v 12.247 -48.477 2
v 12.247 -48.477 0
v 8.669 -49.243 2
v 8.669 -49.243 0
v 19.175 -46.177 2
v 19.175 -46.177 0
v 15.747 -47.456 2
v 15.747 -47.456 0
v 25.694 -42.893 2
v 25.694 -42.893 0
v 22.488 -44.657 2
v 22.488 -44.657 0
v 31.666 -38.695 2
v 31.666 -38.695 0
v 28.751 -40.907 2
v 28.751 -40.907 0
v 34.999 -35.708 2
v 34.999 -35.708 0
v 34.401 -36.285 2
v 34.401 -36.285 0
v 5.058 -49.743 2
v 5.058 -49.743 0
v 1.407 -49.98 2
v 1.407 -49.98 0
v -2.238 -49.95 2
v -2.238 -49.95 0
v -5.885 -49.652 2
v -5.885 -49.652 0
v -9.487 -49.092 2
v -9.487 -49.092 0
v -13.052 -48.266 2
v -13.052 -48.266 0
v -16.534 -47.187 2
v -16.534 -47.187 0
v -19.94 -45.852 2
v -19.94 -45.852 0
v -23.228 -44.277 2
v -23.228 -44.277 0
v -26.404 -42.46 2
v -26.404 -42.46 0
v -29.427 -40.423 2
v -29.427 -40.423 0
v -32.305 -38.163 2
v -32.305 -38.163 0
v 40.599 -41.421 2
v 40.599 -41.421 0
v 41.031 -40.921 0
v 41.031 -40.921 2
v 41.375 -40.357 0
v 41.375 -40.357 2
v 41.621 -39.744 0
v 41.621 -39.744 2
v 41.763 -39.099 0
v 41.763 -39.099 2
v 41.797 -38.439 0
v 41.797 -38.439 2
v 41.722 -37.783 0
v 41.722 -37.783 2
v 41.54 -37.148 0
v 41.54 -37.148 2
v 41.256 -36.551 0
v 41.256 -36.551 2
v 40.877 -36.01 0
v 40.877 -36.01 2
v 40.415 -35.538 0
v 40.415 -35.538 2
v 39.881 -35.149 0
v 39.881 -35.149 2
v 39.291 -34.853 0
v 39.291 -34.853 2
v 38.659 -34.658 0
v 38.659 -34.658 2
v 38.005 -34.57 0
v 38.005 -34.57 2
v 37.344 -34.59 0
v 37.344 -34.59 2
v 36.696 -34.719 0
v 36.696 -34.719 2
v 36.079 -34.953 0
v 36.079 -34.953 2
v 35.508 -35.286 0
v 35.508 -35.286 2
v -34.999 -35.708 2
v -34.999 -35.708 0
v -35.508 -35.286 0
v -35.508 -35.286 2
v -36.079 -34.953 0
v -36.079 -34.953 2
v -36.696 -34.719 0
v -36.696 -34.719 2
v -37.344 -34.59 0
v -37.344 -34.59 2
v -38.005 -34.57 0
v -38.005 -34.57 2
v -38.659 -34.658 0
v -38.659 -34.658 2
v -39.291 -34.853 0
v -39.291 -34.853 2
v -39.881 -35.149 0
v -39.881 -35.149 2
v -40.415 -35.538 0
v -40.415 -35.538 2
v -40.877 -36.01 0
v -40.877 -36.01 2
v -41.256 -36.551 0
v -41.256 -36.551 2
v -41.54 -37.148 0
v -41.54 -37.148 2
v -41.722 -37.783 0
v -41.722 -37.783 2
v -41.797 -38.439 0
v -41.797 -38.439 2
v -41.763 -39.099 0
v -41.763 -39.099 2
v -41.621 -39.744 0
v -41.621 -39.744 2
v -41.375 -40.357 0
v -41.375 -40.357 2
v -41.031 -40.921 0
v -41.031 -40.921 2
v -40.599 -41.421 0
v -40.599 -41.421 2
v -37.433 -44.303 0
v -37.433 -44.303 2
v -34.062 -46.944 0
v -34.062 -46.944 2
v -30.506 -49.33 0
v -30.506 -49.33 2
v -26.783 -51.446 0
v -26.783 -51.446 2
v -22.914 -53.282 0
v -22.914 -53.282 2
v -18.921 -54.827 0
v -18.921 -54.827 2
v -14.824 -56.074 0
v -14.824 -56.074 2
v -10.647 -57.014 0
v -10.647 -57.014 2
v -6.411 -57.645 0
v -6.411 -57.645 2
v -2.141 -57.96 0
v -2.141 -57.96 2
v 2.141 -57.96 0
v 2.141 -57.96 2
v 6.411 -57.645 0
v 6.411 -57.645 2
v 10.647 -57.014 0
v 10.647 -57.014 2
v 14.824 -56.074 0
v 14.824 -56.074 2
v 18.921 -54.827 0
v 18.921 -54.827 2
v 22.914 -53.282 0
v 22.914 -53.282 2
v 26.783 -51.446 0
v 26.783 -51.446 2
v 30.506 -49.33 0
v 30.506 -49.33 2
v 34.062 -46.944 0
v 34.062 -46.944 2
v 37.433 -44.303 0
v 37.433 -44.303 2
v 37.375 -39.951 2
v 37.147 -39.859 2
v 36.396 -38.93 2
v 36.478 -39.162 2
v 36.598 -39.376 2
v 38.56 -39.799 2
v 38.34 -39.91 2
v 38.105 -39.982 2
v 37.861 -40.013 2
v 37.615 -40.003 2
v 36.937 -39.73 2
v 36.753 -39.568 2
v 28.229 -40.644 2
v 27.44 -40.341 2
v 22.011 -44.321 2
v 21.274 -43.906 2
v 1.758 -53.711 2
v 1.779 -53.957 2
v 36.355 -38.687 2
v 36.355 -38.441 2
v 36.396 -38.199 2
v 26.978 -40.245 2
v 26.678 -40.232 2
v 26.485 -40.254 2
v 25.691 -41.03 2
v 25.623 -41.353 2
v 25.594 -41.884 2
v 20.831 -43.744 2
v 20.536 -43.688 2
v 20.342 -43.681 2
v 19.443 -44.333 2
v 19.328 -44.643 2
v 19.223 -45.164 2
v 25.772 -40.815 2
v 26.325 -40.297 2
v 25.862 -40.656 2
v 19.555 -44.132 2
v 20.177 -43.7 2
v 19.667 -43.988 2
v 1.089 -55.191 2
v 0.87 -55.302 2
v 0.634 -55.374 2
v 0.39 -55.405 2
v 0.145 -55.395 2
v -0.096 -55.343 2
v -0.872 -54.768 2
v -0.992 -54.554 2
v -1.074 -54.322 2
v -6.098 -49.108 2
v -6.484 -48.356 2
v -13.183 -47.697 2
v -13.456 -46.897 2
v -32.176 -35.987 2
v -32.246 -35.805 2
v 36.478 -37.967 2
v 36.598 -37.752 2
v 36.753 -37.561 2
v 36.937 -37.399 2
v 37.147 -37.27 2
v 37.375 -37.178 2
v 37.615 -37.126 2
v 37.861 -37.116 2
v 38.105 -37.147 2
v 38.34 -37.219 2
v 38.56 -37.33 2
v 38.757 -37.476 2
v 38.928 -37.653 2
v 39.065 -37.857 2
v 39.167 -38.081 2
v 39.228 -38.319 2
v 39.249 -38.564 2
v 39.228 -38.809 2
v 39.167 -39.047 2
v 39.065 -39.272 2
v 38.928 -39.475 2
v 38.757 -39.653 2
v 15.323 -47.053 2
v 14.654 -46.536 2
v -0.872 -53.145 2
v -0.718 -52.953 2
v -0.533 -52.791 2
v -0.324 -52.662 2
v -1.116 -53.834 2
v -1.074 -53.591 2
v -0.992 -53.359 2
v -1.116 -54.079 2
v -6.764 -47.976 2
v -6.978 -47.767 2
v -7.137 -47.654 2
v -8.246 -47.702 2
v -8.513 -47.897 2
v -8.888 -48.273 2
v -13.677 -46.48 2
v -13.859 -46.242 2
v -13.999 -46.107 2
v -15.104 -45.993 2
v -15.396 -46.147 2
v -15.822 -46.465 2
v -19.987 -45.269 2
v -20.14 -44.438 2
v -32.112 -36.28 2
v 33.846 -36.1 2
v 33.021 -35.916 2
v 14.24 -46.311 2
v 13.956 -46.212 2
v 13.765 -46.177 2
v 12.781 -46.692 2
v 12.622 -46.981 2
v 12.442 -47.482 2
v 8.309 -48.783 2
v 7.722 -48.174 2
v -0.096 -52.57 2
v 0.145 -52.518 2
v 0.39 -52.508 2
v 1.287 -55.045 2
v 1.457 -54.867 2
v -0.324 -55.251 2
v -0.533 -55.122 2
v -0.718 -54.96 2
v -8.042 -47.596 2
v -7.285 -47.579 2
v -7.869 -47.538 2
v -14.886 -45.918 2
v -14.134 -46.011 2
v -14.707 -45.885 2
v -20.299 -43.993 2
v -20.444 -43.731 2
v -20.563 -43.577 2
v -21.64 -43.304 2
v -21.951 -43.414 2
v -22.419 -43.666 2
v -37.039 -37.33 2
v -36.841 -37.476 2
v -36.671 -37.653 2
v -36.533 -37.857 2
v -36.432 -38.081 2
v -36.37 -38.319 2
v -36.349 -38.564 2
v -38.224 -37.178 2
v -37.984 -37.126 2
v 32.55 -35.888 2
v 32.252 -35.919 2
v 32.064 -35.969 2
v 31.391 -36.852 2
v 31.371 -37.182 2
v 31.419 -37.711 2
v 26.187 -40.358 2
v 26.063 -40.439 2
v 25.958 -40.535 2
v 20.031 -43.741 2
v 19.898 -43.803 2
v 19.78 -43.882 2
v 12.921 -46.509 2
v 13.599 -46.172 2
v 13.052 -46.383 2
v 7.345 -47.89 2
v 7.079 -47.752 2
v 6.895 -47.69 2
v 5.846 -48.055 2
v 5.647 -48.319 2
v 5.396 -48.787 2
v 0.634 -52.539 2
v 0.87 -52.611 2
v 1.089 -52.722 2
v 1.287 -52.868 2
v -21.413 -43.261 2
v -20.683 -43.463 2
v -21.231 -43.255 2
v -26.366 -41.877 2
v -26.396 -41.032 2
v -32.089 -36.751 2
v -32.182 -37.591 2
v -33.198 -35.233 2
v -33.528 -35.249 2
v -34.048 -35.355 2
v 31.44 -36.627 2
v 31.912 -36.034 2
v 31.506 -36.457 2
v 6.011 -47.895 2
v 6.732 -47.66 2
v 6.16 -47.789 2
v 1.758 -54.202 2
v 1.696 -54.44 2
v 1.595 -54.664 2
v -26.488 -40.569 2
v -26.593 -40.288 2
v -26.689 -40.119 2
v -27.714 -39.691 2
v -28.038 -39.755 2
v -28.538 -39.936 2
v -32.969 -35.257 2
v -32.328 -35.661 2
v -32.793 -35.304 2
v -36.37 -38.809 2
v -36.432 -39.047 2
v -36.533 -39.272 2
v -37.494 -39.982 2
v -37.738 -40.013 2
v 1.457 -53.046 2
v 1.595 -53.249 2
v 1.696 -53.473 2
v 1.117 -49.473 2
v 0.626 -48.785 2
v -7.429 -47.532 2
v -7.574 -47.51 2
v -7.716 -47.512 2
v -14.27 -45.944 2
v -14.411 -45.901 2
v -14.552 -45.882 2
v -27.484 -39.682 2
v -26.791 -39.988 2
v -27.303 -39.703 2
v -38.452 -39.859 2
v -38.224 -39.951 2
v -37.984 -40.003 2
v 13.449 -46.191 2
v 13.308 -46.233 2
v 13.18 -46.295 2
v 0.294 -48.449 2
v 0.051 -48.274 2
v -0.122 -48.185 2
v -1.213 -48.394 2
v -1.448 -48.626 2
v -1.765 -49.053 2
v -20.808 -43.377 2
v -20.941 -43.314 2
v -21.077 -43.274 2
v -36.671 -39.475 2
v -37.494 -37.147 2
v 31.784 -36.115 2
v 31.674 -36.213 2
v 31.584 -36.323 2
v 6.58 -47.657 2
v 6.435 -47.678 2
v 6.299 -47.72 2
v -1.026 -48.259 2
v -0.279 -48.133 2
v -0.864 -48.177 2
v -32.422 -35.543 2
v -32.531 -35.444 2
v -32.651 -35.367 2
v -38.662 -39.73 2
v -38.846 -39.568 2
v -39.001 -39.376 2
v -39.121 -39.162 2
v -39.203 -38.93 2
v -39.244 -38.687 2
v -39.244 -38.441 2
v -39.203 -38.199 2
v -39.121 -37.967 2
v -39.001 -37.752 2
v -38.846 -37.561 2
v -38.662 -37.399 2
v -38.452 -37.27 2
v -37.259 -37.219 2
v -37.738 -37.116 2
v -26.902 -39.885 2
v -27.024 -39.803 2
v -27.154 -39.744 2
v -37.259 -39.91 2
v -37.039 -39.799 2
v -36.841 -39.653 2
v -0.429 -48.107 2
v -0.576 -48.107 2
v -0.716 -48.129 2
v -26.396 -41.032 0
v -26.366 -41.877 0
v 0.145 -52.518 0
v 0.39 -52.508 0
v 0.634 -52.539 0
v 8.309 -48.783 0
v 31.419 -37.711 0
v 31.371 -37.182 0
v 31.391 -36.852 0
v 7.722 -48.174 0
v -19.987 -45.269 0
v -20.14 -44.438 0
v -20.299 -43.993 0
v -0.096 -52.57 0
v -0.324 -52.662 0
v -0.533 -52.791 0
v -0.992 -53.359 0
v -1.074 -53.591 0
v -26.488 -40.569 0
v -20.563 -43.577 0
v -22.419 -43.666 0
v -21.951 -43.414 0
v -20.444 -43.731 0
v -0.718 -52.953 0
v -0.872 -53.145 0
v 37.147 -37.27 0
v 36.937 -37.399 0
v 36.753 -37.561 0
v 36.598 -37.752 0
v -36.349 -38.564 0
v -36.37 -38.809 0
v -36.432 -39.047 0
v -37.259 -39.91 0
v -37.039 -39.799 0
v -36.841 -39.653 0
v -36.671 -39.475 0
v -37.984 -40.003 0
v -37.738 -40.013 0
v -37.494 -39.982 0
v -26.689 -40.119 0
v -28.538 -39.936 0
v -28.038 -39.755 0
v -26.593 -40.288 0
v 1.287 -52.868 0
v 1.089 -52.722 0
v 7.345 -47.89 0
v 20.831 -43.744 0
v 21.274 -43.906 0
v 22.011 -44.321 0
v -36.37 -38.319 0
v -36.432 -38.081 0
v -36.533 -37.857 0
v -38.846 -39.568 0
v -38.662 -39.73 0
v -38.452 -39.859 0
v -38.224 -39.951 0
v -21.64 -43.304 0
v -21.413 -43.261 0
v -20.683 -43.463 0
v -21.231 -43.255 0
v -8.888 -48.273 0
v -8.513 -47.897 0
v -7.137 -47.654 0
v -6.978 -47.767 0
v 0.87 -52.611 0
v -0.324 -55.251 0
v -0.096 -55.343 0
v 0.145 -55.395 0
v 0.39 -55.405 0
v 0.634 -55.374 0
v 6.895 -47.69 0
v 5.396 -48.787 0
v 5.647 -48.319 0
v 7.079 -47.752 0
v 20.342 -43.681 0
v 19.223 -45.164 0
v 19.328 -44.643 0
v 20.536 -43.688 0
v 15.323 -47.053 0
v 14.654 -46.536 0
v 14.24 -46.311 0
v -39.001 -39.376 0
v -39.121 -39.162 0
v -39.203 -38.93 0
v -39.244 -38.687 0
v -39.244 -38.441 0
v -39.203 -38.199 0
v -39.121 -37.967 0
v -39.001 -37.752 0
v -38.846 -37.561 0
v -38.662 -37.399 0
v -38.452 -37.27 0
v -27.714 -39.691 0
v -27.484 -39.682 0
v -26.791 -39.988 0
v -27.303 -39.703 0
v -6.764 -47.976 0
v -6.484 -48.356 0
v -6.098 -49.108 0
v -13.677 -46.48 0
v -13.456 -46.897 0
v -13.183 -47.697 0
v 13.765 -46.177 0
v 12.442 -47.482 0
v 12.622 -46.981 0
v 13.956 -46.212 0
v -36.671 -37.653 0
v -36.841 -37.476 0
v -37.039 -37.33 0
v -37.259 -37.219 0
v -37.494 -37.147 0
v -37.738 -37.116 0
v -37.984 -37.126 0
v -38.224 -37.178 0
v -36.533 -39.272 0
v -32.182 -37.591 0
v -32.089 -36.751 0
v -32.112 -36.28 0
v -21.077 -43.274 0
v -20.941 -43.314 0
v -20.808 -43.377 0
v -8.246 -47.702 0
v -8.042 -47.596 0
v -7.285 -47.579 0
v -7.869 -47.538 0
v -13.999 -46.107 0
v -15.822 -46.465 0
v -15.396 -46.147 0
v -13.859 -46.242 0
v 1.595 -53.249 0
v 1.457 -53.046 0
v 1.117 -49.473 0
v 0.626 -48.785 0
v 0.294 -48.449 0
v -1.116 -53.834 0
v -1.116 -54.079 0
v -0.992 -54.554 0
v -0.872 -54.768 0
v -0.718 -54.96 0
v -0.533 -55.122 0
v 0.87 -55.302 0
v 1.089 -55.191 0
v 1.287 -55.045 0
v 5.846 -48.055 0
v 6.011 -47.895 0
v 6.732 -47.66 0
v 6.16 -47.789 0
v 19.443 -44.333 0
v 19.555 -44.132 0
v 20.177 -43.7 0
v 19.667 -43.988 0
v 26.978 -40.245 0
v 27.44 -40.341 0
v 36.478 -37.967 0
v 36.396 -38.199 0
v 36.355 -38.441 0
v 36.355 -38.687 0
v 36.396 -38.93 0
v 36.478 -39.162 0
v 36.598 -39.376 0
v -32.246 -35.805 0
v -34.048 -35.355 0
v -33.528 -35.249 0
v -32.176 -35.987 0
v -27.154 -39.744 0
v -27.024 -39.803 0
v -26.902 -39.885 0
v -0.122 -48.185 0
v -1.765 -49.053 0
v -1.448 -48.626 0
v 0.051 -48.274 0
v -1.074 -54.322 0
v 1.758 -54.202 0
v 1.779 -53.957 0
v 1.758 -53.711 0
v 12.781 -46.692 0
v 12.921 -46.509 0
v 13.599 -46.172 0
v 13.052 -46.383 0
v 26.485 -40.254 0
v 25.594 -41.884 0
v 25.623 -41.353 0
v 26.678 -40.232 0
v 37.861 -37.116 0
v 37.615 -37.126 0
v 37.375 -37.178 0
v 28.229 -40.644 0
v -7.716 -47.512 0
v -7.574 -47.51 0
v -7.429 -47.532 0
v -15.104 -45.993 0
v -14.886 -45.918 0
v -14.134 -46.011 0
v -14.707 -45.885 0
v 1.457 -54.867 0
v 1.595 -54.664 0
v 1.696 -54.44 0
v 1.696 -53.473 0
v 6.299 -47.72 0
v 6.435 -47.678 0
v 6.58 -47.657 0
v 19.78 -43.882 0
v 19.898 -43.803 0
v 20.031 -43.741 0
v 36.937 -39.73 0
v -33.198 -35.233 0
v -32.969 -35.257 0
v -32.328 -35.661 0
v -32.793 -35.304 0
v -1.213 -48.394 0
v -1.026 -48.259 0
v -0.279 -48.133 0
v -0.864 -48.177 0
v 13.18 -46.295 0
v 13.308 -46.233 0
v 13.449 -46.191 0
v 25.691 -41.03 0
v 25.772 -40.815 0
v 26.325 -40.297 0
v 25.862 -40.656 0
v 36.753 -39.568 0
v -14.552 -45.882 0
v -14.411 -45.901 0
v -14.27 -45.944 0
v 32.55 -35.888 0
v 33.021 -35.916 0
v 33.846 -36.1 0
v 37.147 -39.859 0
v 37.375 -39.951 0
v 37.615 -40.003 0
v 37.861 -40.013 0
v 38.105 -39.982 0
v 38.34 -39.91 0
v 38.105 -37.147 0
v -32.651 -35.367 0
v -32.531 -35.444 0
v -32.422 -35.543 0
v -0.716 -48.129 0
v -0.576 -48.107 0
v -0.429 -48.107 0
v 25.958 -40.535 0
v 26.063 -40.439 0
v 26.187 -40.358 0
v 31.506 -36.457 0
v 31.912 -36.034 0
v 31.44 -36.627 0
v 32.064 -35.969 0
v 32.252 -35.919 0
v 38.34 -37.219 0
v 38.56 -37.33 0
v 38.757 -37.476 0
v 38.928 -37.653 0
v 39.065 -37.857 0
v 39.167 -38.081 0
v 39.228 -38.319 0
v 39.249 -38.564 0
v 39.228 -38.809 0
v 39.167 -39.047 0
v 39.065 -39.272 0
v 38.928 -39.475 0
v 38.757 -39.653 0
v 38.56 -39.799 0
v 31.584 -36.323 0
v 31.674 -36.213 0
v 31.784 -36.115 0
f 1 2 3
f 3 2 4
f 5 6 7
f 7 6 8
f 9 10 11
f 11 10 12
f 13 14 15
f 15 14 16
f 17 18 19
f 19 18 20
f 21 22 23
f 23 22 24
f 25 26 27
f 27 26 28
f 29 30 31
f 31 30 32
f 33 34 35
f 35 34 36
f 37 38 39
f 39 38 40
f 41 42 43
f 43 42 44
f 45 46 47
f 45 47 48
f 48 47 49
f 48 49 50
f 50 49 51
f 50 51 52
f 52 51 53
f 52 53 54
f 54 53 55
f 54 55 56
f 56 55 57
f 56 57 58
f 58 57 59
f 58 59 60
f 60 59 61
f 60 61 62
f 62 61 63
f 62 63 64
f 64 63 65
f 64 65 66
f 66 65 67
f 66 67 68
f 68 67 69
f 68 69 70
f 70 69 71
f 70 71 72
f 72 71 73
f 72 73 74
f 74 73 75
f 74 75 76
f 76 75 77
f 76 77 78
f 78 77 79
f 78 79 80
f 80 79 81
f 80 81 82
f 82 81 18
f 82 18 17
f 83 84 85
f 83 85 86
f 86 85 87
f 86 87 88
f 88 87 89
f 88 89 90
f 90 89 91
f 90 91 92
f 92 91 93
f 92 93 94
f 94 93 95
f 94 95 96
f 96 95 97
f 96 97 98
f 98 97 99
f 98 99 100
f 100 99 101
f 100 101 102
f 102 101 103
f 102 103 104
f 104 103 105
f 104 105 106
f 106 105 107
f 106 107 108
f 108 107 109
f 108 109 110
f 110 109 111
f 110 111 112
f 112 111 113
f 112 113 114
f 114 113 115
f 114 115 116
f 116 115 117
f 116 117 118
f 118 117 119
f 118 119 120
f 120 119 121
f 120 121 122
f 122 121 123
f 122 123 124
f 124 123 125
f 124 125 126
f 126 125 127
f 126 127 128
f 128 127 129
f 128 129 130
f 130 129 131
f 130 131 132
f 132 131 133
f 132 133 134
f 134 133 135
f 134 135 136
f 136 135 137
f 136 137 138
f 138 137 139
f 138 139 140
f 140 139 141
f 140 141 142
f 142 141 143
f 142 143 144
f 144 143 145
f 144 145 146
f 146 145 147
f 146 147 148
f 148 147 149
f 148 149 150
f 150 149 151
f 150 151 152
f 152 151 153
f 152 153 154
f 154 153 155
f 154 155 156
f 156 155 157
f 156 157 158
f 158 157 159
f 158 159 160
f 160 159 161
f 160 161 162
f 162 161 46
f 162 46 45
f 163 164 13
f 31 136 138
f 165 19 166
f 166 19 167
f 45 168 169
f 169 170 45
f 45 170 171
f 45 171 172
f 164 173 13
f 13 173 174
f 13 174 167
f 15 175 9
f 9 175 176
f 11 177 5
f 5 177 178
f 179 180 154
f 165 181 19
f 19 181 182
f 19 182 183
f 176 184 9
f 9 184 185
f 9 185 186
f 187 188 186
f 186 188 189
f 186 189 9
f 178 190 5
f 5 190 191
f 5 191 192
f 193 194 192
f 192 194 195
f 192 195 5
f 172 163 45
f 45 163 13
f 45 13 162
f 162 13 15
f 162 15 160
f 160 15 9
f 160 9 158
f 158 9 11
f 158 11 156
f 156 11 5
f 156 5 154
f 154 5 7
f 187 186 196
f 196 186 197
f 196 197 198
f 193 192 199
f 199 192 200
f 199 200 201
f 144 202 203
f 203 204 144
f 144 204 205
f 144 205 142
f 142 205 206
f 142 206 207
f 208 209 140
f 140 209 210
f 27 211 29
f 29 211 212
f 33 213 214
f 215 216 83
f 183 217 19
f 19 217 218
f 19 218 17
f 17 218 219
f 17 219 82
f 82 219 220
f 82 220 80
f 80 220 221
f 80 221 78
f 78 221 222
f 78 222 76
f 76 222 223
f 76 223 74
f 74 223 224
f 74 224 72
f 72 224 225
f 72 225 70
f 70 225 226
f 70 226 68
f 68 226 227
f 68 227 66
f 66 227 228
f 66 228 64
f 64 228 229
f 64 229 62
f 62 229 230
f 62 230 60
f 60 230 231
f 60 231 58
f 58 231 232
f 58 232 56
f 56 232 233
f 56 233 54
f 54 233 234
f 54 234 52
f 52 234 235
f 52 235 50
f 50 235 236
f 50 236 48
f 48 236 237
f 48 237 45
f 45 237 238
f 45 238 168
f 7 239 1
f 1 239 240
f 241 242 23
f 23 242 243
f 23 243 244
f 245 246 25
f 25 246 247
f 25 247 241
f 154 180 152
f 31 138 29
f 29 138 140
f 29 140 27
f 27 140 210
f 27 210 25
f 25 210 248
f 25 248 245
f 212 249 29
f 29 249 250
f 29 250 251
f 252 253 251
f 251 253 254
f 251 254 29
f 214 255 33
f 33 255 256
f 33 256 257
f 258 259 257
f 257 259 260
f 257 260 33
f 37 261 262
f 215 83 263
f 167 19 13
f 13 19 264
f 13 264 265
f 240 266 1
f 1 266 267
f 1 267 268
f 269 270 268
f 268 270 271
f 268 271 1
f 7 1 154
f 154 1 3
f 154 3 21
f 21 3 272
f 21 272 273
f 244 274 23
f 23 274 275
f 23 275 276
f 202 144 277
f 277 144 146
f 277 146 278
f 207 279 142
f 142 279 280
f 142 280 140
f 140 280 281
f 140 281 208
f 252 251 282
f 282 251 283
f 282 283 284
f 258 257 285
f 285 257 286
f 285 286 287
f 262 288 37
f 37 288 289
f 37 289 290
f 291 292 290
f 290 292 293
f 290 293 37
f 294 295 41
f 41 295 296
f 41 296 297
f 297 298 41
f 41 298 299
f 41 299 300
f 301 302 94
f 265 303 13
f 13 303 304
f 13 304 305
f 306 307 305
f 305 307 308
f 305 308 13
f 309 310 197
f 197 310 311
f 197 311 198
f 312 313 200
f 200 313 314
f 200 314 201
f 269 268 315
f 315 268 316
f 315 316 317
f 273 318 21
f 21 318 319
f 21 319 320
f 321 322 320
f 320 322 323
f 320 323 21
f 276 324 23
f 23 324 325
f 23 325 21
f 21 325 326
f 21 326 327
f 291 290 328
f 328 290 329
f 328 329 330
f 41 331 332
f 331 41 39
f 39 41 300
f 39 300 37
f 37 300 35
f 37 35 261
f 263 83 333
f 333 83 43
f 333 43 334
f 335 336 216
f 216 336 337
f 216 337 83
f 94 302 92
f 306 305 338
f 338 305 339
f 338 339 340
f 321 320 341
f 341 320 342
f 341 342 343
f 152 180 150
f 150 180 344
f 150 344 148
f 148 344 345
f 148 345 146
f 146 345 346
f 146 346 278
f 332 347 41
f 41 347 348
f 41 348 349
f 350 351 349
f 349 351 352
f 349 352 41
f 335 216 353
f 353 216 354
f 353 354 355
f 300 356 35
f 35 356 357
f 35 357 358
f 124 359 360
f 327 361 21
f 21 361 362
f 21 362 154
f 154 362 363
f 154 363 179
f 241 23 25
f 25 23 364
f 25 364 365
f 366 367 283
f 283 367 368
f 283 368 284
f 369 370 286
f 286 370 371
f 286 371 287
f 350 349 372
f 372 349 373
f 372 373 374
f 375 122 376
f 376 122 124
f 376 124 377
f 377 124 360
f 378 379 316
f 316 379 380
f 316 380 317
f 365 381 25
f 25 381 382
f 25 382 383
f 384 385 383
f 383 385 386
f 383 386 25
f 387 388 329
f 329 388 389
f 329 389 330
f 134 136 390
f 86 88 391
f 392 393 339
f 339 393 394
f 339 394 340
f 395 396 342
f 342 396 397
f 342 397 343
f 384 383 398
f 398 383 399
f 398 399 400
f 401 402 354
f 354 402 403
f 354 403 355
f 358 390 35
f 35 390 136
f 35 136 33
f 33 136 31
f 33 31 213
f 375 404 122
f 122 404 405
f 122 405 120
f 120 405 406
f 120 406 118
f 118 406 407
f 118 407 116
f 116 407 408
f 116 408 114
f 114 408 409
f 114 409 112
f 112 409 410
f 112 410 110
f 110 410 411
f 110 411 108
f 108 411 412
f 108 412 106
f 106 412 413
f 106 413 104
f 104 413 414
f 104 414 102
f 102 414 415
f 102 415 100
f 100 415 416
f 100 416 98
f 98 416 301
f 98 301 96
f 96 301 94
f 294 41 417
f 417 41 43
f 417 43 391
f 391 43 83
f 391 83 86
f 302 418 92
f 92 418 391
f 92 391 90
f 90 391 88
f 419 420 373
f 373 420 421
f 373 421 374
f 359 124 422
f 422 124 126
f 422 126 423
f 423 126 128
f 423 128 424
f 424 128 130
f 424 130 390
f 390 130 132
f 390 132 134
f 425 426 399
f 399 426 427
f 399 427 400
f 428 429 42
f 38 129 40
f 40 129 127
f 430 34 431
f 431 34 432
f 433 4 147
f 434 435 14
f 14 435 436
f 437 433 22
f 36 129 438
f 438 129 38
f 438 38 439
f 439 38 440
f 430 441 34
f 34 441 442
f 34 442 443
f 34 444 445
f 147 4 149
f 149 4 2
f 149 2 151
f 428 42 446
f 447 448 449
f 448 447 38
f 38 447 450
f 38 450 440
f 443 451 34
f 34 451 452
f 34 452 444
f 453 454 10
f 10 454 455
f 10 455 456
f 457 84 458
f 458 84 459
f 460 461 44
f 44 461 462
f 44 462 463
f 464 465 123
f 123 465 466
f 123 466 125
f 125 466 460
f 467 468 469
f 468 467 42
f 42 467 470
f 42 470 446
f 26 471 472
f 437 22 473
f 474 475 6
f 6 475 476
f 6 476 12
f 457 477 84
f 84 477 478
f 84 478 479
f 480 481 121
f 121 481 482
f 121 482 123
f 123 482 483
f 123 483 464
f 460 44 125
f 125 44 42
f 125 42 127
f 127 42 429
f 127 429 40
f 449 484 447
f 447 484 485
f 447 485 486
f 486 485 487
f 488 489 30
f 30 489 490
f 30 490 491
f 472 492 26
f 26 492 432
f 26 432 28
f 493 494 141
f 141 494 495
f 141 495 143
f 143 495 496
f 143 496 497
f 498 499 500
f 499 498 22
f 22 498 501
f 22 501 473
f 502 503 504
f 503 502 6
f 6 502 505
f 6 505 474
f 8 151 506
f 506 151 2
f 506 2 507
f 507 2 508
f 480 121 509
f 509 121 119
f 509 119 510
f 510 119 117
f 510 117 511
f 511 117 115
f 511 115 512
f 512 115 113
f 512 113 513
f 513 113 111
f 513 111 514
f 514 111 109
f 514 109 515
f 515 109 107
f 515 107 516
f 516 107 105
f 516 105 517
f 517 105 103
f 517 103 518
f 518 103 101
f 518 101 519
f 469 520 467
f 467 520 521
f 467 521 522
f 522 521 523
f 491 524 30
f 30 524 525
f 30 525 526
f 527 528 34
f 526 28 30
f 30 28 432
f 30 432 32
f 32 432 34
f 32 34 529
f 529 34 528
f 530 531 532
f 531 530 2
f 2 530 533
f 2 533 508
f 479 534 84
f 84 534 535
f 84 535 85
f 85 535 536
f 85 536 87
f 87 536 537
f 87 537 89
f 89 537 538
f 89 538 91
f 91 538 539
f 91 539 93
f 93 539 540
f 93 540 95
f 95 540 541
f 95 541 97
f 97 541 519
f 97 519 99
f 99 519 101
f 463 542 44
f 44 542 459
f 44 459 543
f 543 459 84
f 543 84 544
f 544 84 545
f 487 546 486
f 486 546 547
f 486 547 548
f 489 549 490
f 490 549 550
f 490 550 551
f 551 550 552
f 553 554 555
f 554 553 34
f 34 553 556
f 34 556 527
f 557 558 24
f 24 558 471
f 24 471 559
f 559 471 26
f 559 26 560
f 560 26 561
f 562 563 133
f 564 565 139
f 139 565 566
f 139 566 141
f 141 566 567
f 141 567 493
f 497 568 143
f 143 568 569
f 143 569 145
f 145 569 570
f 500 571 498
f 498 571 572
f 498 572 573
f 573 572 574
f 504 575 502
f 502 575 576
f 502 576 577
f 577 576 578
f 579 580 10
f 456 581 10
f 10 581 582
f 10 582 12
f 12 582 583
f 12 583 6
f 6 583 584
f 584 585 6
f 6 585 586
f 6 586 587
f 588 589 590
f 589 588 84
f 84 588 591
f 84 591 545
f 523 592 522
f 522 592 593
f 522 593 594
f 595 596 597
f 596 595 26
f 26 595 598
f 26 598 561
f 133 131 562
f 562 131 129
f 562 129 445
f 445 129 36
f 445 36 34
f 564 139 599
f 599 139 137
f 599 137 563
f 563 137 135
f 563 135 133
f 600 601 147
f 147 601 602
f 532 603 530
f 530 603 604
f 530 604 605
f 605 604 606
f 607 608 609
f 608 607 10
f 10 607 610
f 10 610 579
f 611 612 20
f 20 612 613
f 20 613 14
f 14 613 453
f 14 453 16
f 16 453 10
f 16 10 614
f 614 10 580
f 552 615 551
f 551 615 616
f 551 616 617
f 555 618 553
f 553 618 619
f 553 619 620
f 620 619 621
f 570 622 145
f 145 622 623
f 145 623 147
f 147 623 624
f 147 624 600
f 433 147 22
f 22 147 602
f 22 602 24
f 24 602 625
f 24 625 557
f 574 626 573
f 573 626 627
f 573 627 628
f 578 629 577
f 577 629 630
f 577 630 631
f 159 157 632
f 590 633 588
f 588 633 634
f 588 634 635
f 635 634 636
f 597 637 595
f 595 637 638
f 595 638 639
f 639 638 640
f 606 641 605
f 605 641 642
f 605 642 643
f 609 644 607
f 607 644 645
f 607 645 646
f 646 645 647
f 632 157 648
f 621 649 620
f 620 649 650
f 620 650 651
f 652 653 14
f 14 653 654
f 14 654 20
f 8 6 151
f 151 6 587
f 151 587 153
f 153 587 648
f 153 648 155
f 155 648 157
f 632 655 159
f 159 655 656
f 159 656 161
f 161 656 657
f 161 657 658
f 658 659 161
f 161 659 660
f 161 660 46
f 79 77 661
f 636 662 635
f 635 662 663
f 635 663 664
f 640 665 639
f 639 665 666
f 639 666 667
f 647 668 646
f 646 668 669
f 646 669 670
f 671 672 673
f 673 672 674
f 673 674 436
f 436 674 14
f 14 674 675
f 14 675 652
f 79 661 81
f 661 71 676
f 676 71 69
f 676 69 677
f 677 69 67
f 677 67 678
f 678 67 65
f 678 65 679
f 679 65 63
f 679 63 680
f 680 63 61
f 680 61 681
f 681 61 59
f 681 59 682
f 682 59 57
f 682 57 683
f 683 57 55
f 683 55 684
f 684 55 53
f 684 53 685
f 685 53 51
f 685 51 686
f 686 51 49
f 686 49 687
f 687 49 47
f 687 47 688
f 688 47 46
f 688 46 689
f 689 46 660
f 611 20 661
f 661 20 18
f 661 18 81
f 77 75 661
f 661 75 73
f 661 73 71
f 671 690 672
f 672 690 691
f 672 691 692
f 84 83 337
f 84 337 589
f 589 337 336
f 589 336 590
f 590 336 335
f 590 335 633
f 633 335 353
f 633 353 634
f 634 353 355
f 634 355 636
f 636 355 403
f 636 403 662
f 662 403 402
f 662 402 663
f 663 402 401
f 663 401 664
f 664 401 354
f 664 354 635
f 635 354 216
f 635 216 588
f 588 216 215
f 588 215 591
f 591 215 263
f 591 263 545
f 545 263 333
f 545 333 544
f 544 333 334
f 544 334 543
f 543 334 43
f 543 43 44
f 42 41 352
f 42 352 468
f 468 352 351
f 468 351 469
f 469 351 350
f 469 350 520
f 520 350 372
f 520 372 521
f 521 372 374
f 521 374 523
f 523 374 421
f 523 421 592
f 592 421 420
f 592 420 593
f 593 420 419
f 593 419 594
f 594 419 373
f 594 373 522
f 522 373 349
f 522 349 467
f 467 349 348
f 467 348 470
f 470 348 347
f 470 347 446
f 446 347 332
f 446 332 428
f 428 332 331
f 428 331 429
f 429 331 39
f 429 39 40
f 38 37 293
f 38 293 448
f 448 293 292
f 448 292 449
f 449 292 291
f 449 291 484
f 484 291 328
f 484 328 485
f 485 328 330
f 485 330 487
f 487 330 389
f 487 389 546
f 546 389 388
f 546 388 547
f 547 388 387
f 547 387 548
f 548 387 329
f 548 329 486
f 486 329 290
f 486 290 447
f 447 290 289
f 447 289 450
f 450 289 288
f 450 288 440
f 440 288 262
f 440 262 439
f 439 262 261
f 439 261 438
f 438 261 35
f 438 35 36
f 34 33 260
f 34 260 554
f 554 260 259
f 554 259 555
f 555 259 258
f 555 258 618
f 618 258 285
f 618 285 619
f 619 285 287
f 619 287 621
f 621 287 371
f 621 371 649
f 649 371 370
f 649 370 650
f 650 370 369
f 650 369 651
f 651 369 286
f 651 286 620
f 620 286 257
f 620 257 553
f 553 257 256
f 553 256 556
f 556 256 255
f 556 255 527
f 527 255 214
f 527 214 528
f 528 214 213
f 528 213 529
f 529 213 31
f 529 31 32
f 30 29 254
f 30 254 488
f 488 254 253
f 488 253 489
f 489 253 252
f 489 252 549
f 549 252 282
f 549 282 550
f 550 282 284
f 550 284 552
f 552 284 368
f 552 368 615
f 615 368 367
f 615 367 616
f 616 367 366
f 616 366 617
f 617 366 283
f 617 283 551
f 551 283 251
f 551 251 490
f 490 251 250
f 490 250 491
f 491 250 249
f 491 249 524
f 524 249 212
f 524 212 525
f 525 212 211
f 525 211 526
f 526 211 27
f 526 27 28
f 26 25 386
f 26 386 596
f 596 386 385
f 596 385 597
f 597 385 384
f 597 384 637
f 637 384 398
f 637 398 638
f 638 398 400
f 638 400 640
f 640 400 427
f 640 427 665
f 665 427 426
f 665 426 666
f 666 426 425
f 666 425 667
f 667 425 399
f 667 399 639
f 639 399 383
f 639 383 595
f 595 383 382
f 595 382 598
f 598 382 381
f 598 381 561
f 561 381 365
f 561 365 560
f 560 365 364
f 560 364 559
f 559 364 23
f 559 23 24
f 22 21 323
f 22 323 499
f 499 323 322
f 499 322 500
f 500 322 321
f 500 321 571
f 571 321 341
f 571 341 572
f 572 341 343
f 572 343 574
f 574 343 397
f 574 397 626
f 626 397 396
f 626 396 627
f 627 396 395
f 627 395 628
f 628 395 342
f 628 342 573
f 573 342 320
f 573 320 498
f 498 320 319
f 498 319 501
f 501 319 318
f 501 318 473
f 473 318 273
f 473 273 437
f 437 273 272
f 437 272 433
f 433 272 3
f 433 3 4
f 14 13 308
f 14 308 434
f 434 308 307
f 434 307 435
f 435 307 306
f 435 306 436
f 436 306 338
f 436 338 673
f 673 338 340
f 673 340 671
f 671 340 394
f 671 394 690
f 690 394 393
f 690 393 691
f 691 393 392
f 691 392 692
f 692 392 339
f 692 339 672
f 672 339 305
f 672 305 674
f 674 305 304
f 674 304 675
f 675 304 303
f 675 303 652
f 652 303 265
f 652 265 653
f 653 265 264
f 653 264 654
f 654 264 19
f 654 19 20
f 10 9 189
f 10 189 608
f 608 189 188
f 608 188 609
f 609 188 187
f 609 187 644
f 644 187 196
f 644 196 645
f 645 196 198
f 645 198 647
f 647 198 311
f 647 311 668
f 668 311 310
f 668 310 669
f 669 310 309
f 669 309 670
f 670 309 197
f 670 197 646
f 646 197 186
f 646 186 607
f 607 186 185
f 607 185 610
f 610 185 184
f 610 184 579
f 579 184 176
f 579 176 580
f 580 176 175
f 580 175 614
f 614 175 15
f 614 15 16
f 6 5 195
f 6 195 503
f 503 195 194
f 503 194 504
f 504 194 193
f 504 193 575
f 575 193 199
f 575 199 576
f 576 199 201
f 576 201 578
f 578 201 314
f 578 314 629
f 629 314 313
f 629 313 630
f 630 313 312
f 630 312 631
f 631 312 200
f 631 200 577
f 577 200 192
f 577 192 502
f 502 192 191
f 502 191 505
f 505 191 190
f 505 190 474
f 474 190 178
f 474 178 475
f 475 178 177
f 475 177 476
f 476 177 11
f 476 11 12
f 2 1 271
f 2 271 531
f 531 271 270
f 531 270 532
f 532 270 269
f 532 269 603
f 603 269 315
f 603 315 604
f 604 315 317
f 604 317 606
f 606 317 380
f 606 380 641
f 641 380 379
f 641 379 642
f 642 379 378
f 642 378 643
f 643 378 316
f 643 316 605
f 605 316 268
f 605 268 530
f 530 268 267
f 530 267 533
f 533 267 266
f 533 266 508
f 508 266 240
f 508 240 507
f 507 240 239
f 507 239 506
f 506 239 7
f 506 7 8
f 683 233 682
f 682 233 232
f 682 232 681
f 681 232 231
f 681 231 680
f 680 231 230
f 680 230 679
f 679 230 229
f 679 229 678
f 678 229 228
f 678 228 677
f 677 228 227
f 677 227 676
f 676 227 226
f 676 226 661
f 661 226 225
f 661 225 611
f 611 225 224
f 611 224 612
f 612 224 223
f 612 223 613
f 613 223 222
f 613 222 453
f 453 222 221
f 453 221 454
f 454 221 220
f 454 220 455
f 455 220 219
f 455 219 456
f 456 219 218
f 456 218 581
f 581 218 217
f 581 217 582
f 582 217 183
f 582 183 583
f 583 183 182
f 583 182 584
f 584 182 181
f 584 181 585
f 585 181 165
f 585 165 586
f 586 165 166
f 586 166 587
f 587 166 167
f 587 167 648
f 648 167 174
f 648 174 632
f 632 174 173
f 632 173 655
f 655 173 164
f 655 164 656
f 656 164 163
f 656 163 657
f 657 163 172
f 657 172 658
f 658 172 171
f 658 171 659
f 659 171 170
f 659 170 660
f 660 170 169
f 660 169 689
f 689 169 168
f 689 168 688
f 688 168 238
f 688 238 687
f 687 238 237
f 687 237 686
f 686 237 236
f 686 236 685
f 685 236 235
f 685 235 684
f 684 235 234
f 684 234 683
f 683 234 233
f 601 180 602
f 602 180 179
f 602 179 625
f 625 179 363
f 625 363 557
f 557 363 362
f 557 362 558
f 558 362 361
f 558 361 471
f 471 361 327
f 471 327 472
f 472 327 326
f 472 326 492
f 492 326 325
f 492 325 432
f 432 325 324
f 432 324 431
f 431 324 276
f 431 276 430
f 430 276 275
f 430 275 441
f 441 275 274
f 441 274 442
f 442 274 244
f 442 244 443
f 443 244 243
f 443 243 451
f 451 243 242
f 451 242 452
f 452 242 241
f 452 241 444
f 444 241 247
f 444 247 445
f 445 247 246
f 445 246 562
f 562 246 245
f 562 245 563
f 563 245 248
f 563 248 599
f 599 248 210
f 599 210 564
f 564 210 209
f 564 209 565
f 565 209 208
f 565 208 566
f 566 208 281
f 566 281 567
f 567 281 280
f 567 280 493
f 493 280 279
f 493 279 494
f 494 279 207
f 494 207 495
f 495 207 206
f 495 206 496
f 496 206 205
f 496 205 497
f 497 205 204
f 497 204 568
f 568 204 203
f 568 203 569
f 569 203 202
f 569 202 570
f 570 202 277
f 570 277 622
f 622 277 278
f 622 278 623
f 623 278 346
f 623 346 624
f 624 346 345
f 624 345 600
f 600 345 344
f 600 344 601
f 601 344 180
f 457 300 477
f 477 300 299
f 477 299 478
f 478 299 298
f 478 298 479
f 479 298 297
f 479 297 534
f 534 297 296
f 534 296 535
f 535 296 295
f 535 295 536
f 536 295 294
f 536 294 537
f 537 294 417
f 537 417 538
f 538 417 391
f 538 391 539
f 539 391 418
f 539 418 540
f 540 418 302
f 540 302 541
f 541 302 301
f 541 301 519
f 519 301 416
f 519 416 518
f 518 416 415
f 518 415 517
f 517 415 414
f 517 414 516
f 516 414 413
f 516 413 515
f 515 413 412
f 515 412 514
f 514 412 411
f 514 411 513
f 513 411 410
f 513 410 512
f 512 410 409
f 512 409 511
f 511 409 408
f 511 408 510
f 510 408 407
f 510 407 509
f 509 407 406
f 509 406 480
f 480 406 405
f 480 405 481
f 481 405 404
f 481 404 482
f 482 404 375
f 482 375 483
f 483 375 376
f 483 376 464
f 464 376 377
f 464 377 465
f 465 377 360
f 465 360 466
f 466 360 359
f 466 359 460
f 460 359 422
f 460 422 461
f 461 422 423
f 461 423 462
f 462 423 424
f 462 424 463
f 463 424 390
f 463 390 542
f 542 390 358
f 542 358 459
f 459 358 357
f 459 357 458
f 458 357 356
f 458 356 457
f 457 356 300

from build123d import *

# Parameters (mm, degrees)
EXTRUDE_1_DEPTH     = 2
EXTRUDE_START       = -2
EXTRUDE_6_DEPTH     = 2
SKETCH_3_R          = 1.45
CUT_EXTRUDE_1_DEPTH = 2


with BuildPart() as part:
    # 草图1 → 凸台-拉伸1 (new body)
    with BuildSketch(Plane.XY):
        with BuildLine():
            ThreePointArc((34.999399669, -35.707730574), (0, -50), (-34.999399669, -35.707730574))
            ThreePointArc((-34.999399669, -35.707730574), (-40.655970089, -35.764397047), (-40.599303617, -41.420967466))
            ThreePointArc((-40.599303617, -41.420967466), (0, -58), (40.599303617, -41.420967466))
            ThreePointArc((40.599303617, -41.420967466), (40.655970089, -35.764397047), (34.999399669, -35.707730574))
        make_face()
    extrude(amount=EXTRUDE_1_DEPTH)

    # 草图2 → 凸台-拉伸6 (add)
    with BuildSketch(Plane.XY.offset(2).offset(EXTRUDE_START)):
        with BuildLine():
            add(Edge.make_bspline(
                [(-34.999399669, -35.707730574), (-31.293036679, -34.051470167), (-32.304776642, -38.162827543)],
                knots=[0, 0, 0, 1, 1, 1], degree=2))
            ThreePointArc((-34.999399669, -35.707730574), (-33.674469744, -36.959844257), (-32.304776642, -38.162827543))
        make_face()
        with BuildLine():
            add(Edge.make_bspline(
                [(-29.427336681, -40.423159895), (-26.001624486, -38.244898865), (-26.403964274, -42.459753539)],
                knots=[0, 0, 0, 1, 1, 1], degree=2))
            ThreePointArc((-29.427336681, -40.423159895), (-27.934216832, -41.469018918), (-26.403964274, -42.459753539))
        make_face()
        with BuildLine():
            add(Edge.make_bspline(
                [(-23.228081101, -44.277039743), (-20.15603281, -41.623203943), (-19.940397248, -45.851723605)],
                knots=[0, 0, 0, 1, 1, 1], degree=2))
            ThreePointArc((-23.228081101, -44.277039743), (-21.598594585, -45.094353437), (-19.940397248, -45.851723605))
        make_face()
        with BuildLine():
            add(Edge.make_bspline(
                [(-16.5337593, -47.18723136), (-13.880850288, -44.114382693), (-13.051835275, -48.266443788)],
                knots=[0, 0, 0, 1, 1, 1], degree=2))
            ThreePointArc((-16.5337593, -47.18723136), (-14.802635794, -47.758580104), (-13.051835275, -48.266443788))
        make_face()
        with BuildLine():
            add(Edge.make_bspline(
                [(-9.487049125, -49.091709065), (-7.309821542, -45.665339966), (-5.885096092, -49.65244852)],
                knots=[0, 0, 0, 1, 1, 1], degree=2))
            ThreePointArc((-9.487049125, -49.091709065), (-7.69118452, -49.404915552), (-5.885096092, -49.65244852))
        make_face()
        with BuildLine():
            add(Edge.make_bspline(
                [(-2.238138968, -49.949882222), (-0.58299664, -46.243019798), (1.407073696, -49.980197515)],
                knots=[0, 0, 0, 1, 1, 1], degree=2))
            ThreePointArc((-2.238138968, -49.949882222), (-0.415809002, -49.998270999), (1.407073696, -49.980197515))
        make_face()
        with BuildLine():
            add(Edge.make_bspline(
                [(5.058473235, -49.743460359), (6.156253823, -45.835109949), (8.669254151, -49.242705373)],
                knots=[0, 0, 0, 1, 1, 1], degree=2))
            ThreePointArc((5.058473235, -49.743460359), (6.868428764, -49.526000104), (8.669254151, -49.242705373))
        make_face()
        with BuildLine():
            add(Edge.make_bspline(
                [(31.66559238, -38.694835046), (30.424637319, -34.829559417), (34.400675338, -36.284894051)],
                knots=[0, 0, 0, 1, 1, 1], degree=2))
            ThreePointArc((31.66559238, -38.694835046), (33.055103788, -37.514798594), (34.400675338, -36.284894051))
        make_face()
        with BuildLine():
            add(Edge.make_bspline(
                [(25.69413065, -42.893025659), (25.029188635, -38.888256343), (28.750957058, -40.906997791)],
                knots=[0, 0, 0, 1, 1, 1], degree=2))
            ThreePointArc((25.69413065, -42.893025659), (27.240649231, -41.927878905), (28.750957058, -40.906997791))
        make_face()
        with BuildLine():
            add(Edge.make_bspline(
                [(19.175043133, -46.177025899), (19.100286249, -42.118117602), (22.488462044, -44.657239893)],
                knots=[0, 0, 0, 1, 1, 1], degree=2))
            ThreePointArc((19.175043133, -46.177025899), (20.84560753, -45.44733927), (22.488462044, -44.657239893))
        make_face()
        with BuildLine():
            add(Edge.make_bspline(
                [(12.247272863, -48.476843002), (12.764294423, -44.450304307), (15.746664505, -47.455690459)],
                knots=[0, 0, 0, 1, 1, 1], degree=2))
            ThreePointArc((12.247272863, -48.476843002), (14.006277895, -47.998168502), (15.746664505, -47.455690459))
        make_face()
    extrude(amount=EXTRUDE_6_DEPTH)

    # 草图3 → 切除-拉伸1 (cut)
    with BuildSketch(Plane.XY.offset(2)):
        with Locations((-37.799351643, -38.56434902)):
            Circle(SKETCH_3_R)
        with Locations((0.328913231, -53.956500006)):
            Circle(SKETCH_3_R)
        with Locations((37.799351643, -38.56434902)):
            Circle(SKETCH_3_R)
    extrude(amount=-CUT_EXTRUDE_1_DEPTH, mode=Mode.SUBTRACT)


solid = part.part
